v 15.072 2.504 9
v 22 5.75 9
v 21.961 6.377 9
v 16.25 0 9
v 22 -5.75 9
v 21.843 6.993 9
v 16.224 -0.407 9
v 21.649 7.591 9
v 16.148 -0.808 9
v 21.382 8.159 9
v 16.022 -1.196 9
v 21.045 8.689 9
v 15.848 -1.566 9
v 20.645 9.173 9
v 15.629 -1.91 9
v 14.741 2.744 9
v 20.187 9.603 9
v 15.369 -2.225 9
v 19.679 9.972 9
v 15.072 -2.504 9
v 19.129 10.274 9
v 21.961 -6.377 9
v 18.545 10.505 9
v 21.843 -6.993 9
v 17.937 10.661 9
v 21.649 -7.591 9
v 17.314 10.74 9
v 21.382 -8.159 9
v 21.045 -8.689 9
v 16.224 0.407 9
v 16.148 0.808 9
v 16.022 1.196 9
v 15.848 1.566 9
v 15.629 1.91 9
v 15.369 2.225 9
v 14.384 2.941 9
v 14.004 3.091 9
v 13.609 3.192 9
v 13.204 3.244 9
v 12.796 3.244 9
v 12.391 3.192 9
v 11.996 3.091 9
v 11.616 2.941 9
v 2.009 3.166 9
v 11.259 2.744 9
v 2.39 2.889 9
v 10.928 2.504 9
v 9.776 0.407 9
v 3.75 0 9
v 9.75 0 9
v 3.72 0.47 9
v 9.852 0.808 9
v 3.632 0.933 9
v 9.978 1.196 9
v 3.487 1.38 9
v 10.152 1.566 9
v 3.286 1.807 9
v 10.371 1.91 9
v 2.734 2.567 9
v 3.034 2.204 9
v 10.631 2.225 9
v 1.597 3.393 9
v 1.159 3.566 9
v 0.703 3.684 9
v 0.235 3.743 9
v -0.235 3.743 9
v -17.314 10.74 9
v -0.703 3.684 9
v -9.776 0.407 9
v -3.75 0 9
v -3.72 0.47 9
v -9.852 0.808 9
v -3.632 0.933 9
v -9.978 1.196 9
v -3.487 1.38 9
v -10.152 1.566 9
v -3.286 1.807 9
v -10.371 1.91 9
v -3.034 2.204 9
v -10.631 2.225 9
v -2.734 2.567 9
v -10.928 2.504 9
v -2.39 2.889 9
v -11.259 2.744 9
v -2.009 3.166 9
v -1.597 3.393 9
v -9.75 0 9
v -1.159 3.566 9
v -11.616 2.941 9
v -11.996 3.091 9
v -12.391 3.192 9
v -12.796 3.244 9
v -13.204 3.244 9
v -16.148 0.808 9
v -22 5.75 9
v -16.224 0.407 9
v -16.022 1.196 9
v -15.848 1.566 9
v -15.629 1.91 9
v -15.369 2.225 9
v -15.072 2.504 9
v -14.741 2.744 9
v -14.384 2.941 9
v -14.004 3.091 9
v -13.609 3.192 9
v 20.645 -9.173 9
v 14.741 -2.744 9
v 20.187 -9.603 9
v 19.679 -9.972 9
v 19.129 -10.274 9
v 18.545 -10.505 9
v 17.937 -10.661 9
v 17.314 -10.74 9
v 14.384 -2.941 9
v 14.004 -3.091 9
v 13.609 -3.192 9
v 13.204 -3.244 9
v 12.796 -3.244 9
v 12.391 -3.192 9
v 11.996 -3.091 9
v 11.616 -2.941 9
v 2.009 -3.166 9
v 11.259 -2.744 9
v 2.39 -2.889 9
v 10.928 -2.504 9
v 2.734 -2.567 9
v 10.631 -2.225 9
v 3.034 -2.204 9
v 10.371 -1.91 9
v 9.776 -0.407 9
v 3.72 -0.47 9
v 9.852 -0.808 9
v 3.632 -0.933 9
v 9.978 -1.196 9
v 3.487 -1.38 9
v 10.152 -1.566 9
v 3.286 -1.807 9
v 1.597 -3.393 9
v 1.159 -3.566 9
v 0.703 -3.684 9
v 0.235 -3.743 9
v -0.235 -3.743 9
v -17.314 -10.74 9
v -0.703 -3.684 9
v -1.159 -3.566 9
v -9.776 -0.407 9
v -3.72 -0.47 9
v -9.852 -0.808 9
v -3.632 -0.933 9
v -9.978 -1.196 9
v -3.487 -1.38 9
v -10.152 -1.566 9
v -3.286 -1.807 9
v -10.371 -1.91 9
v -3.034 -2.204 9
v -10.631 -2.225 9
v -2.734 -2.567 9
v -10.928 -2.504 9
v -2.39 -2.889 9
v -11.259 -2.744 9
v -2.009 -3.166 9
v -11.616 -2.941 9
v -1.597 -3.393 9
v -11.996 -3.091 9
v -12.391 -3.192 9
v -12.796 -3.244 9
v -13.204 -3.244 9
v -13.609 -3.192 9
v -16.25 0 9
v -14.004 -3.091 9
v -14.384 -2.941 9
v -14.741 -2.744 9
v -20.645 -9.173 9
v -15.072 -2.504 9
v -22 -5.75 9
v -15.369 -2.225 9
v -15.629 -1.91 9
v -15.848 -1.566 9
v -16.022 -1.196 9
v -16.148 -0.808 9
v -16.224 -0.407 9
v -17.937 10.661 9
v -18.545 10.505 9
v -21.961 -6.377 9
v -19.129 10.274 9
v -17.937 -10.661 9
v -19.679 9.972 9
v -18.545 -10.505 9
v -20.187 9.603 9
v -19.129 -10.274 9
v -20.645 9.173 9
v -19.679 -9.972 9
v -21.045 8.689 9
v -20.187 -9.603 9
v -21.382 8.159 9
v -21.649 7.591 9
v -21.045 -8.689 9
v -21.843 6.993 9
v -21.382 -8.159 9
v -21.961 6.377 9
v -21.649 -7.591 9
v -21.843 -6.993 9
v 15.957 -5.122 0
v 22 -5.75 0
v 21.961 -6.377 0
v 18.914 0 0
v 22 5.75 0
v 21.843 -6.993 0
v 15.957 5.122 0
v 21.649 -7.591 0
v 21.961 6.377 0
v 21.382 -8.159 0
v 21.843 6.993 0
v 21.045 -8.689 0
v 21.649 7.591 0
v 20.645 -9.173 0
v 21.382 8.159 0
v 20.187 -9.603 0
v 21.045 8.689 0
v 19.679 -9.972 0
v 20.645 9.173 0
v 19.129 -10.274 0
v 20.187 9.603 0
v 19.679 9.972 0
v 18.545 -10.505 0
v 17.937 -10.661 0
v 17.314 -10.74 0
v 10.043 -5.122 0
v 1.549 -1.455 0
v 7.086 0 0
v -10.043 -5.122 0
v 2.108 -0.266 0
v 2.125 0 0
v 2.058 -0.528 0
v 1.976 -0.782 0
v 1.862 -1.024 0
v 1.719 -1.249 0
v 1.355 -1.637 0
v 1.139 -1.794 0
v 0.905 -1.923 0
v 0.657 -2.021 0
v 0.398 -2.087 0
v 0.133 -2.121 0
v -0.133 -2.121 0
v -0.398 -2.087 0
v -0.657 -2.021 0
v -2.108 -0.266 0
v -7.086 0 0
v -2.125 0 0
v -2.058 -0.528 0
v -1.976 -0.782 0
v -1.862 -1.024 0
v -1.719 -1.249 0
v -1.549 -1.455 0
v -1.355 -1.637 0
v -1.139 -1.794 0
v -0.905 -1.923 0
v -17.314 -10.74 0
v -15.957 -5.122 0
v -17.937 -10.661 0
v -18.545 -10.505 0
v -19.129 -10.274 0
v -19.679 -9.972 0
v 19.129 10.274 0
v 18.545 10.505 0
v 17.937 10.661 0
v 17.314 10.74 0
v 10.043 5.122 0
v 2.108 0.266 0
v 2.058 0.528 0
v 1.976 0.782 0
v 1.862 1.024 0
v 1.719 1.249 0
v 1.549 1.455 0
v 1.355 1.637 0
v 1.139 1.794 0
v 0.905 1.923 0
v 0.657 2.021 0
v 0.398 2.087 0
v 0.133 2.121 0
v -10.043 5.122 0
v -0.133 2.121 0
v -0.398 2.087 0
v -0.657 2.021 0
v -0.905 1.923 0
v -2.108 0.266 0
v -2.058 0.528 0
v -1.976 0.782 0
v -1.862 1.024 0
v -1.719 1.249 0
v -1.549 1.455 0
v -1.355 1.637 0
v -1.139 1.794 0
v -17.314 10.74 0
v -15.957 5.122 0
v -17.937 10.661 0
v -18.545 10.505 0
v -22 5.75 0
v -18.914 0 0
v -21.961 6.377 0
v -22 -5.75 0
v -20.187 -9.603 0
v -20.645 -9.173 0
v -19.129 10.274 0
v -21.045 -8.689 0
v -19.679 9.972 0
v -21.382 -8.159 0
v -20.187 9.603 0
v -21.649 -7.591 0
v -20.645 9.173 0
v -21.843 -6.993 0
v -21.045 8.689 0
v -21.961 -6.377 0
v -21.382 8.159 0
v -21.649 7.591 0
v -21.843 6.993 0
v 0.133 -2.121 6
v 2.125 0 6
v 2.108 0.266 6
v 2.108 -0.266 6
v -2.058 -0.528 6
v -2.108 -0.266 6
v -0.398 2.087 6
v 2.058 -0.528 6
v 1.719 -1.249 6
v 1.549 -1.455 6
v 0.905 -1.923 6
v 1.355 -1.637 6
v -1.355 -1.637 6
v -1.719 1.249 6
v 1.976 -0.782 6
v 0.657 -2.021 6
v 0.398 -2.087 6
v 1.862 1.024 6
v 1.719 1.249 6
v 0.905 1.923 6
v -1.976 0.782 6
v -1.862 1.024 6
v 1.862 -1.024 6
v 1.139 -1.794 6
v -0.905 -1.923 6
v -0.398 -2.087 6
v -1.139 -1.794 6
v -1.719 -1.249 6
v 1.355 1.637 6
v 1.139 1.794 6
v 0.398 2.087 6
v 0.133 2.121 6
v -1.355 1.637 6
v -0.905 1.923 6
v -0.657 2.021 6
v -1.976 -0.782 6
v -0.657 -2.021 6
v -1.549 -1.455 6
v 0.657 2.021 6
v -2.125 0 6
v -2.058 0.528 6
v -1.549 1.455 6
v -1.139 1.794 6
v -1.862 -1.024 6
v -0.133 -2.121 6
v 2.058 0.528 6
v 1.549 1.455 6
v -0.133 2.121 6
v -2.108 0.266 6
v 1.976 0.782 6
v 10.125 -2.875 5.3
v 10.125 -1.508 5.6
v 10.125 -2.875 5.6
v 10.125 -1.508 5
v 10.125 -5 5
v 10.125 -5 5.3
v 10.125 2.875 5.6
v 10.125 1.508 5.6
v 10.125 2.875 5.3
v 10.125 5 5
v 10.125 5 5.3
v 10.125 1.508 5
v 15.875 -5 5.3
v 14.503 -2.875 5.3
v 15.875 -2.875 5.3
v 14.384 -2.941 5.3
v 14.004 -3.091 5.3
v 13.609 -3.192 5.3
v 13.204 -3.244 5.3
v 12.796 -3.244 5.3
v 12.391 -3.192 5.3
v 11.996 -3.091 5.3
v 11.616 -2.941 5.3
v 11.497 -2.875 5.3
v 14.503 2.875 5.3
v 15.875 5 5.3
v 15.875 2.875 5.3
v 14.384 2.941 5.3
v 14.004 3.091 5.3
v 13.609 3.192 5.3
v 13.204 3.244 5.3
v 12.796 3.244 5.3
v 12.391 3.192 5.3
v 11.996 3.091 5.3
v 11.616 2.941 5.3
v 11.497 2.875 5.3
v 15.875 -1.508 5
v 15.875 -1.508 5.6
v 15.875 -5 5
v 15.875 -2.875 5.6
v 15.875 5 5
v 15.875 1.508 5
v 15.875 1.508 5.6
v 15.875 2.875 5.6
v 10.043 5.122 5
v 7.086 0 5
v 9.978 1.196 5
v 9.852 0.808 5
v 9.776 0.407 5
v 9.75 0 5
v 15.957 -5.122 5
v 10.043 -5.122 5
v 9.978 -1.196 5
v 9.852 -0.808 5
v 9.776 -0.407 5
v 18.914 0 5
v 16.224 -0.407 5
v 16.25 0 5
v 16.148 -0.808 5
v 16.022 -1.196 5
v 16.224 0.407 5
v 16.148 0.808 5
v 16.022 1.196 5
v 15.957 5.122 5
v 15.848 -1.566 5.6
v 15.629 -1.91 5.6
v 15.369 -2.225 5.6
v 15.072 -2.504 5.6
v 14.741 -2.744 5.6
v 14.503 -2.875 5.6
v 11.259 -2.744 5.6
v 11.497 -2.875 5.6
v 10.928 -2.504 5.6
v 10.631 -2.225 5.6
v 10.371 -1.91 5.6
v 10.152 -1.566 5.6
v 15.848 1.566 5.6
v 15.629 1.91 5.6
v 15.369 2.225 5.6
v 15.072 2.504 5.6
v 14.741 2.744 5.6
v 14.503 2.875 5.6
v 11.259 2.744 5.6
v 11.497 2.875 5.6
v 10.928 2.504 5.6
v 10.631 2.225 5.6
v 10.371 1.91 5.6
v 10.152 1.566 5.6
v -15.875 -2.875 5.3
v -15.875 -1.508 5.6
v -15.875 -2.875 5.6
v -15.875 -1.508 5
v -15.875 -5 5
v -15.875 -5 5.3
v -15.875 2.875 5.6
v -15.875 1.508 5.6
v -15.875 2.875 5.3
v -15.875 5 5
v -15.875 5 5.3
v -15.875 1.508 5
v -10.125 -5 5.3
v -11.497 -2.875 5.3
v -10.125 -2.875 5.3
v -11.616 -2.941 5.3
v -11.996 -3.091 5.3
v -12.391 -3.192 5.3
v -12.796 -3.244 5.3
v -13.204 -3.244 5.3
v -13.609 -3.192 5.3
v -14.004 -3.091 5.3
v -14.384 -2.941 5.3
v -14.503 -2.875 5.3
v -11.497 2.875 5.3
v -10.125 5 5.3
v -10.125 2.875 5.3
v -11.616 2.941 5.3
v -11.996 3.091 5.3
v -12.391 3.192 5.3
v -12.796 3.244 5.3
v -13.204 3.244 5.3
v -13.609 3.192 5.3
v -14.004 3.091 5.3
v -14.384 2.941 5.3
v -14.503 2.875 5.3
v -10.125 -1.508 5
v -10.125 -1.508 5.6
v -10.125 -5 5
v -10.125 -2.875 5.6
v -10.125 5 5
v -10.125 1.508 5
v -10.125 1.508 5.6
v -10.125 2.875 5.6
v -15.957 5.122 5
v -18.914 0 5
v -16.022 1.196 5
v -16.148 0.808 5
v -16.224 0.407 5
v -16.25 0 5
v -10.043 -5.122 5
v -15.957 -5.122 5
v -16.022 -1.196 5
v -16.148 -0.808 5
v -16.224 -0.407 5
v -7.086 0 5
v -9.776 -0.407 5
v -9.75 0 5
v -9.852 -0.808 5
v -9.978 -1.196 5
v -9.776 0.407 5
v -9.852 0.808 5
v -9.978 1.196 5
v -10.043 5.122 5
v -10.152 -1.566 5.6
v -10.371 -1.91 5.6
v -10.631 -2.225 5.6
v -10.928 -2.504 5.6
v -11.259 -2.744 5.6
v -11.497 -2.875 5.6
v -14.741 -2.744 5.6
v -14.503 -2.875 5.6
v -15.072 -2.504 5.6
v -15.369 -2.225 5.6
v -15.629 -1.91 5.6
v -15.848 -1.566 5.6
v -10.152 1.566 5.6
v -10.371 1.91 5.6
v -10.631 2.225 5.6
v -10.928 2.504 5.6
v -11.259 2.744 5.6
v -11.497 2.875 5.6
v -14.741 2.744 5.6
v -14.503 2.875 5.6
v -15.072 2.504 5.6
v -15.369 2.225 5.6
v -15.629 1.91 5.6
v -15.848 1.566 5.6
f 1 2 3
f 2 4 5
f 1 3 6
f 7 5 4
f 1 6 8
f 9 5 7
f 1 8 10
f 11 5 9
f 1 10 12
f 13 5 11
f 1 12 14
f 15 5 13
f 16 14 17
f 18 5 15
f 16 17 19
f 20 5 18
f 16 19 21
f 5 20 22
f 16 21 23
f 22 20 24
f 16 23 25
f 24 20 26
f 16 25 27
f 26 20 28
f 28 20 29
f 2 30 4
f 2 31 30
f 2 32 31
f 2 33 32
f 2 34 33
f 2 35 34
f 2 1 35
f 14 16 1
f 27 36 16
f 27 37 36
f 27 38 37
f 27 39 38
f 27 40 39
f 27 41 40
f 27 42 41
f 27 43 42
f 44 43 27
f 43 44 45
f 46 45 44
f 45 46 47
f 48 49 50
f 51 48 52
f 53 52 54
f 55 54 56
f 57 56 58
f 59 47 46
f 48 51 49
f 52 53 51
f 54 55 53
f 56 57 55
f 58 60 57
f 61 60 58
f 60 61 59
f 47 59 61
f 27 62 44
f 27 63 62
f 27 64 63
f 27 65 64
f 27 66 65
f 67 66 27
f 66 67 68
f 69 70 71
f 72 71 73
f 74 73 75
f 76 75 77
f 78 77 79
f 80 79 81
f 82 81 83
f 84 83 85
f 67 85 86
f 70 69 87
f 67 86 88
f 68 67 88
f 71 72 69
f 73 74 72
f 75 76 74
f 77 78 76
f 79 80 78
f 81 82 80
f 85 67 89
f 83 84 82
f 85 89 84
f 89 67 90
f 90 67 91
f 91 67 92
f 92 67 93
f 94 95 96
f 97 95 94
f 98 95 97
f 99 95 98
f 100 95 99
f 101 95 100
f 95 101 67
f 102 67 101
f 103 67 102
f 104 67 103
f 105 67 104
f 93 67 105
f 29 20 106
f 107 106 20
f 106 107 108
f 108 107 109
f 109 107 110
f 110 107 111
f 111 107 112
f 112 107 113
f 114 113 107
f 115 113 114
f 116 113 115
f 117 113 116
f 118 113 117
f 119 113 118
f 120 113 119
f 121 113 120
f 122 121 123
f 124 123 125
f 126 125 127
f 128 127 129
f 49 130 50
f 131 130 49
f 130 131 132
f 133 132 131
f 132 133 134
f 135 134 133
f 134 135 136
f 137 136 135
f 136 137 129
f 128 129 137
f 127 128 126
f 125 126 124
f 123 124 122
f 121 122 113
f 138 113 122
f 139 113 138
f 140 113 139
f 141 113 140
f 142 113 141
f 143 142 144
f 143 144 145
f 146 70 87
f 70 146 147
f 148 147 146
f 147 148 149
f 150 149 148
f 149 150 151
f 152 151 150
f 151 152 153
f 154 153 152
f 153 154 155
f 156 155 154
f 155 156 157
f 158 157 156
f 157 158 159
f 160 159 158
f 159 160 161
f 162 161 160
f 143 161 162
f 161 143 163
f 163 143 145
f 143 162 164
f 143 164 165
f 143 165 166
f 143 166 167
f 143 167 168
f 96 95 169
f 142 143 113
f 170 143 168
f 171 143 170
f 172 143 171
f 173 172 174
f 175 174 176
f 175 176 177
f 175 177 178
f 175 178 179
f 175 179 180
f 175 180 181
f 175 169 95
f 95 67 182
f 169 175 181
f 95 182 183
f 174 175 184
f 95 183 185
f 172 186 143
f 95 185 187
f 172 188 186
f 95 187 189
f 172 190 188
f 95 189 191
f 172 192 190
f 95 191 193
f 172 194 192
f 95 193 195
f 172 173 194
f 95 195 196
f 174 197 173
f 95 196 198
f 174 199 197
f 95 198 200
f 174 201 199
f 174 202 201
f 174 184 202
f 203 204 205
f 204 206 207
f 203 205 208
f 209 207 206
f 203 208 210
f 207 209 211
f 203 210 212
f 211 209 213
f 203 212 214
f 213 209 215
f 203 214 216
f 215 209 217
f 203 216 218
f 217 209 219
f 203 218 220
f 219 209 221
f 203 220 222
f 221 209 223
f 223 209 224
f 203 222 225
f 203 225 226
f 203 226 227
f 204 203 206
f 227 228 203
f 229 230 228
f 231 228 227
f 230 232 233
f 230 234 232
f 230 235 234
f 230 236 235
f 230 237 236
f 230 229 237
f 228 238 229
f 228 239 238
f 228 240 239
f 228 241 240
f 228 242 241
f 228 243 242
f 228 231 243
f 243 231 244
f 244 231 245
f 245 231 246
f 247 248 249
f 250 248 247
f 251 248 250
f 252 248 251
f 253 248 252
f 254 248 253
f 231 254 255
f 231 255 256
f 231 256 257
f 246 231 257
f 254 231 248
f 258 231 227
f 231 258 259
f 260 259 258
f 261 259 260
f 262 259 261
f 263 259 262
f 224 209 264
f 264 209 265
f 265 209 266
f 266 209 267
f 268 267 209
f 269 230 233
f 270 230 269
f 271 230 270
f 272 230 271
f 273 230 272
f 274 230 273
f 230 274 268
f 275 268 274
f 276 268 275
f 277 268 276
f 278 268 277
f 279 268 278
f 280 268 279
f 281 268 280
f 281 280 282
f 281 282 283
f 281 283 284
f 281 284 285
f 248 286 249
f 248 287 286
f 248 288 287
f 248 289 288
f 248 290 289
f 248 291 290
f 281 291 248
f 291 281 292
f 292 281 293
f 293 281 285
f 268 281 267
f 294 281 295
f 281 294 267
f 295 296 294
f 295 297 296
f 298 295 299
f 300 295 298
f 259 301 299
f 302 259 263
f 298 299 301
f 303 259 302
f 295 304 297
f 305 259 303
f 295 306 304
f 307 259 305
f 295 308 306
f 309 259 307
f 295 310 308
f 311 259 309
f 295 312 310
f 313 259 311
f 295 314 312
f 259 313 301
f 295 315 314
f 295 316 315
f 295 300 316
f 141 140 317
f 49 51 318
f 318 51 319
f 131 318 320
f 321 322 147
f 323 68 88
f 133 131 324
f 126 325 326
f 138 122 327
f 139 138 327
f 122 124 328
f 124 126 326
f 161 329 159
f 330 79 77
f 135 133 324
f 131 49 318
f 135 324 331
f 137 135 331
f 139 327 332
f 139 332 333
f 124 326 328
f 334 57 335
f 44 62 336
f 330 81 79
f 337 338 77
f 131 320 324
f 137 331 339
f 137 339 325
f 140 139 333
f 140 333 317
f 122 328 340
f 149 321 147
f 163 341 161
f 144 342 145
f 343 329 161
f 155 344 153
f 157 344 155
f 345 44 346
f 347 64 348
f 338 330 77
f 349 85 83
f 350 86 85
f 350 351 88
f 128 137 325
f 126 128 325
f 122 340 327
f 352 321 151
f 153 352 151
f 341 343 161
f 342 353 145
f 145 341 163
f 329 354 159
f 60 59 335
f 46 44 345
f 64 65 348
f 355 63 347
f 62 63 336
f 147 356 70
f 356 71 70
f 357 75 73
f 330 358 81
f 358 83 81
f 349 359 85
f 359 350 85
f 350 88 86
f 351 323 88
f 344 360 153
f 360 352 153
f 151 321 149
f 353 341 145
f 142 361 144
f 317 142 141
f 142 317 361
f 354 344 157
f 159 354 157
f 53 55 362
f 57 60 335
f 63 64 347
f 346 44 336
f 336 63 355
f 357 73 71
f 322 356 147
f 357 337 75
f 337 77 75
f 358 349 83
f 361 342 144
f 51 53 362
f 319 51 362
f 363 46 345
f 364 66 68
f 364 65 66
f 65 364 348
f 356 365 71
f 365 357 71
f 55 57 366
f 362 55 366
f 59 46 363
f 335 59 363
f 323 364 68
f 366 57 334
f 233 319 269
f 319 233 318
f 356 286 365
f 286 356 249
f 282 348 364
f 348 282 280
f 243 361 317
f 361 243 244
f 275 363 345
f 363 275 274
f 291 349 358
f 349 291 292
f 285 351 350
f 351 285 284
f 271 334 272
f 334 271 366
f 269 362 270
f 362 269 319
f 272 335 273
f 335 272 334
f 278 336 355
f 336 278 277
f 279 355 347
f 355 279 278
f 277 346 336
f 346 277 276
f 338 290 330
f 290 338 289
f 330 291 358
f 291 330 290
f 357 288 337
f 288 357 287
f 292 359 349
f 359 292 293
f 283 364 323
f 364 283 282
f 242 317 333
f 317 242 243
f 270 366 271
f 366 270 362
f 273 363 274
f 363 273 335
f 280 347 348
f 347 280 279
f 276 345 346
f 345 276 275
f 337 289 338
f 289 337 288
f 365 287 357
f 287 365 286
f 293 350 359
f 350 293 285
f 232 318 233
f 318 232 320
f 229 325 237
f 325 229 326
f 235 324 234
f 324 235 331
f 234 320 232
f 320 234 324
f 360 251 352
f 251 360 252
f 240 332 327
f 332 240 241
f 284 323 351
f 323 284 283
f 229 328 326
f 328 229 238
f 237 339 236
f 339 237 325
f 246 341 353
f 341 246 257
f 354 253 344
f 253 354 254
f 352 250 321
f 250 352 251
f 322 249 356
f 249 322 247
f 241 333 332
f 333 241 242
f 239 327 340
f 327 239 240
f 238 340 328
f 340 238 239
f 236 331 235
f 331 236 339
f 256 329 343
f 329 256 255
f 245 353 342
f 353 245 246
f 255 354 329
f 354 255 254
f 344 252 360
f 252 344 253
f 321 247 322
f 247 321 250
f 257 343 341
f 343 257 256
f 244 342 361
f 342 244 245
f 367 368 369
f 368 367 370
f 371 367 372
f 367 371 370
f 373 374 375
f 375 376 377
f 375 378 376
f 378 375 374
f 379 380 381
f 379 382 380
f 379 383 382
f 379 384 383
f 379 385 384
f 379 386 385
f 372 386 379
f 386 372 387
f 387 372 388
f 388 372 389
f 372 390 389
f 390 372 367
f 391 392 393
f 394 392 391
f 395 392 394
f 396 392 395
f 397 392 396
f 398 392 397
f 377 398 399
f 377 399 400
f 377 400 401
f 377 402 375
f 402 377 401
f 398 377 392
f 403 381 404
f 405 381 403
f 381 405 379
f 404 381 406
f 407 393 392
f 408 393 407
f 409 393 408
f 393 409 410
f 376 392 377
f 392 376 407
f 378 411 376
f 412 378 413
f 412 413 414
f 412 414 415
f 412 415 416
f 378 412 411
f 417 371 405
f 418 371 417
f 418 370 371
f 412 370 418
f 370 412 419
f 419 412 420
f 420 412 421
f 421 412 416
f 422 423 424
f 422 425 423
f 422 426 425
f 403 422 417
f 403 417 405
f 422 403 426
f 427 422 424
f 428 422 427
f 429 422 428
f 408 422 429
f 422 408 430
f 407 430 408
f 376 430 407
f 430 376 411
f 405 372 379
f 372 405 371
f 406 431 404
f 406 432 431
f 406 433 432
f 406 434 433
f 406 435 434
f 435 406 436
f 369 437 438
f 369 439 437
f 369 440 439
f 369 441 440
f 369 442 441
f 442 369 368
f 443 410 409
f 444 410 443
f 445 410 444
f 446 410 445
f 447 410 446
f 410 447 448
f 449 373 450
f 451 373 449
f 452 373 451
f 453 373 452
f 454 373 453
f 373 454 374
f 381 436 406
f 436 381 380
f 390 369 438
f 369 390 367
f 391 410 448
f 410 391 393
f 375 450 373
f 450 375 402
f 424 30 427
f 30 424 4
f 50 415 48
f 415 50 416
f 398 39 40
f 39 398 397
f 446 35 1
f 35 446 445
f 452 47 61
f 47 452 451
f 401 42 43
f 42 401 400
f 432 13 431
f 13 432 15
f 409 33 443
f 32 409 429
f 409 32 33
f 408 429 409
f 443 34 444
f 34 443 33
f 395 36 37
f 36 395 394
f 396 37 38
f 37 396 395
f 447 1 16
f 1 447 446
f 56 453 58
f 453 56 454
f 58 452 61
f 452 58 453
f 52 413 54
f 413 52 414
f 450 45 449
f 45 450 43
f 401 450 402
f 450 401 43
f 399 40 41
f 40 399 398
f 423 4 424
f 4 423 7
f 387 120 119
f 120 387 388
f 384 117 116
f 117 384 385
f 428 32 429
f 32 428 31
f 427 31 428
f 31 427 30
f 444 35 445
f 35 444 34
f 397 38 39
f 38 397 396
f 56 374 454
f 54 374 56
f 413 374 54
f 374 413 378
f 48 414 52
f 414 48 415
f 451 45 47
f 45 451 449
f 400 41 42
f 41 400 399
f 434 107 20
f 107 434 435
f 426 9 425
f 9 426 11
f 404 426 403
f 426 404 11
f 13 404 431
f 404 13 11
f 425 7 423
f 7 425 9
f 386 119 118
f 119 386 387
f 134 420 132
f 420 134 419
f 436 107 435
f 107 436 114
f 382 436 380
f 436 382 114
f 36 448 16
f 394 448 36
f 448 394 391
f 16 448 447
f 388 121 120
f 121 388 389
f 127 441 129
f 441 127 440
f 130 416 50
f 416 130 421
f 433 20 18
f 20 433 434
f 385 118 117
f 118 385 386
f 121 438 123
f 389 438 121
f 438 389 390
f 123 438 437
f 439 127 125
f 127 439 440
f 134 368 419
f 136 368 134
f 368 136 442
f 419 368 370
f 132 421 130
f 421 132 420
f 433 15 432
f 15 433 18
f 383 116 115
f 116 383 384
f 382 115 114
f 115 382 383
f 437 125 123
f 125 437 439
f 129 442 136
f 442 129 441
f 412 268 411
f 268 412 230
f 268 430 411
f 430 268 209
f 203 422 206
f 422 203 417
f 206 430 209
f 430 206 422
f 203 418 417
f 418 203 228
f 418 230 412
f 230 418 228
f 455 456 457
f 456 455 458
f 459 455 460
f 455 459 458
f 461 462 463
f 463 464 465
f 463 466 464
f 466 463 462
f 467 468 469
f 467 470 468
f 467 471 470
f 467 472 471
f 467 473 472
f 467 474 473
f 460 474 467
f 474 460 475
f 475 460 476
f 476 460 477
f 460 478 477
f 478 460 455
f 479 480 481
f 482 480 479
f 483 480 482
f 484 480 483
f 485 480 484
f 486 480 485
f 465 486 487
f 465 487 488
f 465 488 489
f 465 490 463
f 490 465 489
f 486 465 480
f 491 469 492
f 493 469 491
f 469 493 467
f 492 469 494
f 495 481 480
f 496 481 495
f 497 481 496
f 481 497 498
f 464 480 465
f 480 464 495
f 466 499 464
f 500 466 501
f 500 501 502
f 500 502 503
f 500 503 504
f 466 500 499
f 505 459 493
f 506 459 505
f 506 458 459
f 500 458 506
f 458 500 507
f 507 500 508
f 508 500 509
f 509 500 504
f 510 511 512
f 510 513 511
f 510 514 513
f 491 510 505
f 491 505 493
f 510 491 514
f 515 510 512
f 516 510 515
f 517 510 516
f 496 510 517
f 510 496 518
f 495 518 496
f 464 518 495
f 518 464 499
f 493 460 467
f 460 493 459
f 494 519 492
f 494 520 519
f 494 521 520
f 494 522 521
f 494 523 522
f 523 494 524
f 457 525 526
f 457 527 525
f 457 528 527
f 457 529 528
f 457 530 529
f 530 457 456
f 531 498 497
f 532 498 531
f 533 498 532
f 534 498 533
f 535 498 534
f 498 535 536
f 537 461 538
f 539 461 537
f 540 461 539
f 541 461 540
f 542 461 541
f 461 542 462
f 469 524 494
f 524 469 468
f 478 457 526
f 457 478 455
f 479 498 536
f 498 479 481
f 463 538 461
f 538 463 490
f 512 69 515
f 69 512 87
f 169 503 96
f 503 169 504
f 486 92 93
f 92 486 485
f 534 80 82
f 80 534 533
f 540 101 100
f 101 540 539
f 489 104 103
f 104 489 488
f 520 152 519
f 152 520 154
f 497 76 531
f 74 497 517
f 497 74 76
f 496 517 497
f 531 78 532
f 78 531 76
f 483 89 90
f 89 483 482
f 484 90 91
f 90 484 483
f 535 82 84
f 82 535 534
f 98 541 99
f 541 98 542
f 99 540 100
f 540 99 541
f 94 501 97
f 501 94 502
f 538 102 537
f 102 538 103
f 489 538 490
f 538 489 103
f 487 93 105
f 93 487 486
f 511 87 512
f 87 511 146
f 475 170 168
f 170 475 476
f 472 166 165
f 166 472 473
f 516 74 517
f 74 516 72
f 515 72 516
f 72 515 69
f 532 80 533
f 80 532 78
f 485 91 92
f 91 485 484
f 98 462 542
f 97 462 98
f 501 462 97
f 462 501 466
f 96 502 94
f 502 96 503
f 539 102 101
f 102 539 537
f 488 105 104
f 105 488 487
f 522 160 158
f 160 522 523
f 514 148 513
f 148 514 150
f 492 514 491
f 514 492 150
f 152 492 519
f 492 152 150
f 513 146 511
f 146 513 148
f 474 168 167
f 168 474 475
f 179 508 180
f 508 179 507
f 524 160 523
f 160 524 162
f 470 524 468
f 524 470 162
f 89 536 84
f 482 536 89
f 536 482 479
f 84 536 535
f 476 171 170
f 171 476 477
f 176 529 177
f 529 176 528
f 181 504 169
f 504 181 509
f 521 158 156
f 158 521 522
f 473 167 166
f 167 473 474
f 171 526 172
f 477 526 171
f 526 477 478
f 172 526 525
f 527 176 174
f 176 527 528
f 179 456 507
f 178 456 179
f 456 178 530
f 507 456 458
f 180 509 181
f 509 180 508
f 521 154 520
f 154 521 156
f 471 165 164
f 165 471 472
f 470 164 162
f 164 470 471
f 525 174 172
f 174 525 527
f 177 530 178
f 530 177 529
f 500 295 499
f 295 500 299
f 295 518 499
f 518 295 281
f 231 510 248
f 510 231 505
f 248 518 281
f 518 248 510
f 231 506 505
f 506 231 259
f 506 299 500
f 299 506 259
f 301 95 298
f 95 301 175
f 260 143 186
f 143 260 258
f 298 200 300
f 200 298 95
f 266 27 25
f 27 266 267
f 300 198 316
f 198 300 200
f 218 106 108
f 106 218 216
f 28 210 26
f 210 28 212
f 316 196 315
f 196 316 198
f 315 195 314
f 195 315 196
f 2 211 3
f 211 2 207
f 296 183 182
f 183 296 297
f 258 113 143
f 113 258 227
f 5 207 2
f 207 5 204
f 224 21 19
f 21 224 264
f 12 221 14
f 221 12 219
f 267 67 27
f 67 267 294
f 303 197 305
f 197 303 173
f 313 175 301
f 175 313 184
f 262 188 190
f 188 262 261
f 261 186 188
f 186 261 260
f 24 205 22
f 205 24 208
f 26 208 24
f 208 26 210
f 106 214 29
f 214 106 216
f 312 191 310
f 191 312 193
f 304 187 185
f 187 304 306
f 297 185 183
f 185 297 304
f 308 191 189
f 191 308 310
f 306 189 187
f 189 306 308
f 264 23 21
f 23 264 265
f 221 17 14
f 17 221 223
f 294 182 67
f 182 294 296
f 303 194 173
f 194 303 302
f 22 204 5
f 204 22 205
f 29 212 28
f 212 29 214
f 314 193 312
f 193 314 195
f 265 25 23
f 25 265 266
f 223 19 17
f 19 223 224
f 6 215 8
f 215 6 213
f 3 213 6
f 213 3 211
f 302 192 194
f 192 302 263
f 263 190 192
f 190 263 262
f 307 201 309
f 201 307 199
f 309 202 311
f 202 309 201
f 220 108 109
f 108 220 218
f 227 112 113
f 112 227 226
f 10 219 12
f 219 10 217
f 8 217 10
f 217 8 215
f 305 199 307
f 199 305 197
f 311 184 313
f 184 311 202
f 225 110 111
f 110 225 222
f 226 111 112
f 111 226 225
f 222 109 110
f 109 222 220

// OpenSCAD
$fn = 50;


difference() {
	union() {
		hull() {
			translate(v = [-17.0000000000, 5.7500000000, 0]) {
				cylinder(h = 9, r = 5);
			}
			translate(v = [17.0000000000, 5.7500000000, 0]) {
				cylinder(h = 9, r = 5);
			}
			translate(v = [-17.0000000000, -5.7500000000, 0]) {
				cylinder(h = 9, r = 5);
			}
			translate(v = [17.0000000000, -5.7500000000, 0]) {
				cylinder(h = 9, r = 5);
			}
		}
	}
	union() {
		translate(v = [0, 0, 9]) {
			rotate(a = [0, 0, 0]) {
				difference() {
					union() {
						#translate(v = [0, 0, -9.0000000000]) {
							cylinder(h = 9, r = 2.0000000000);
						}
						#translate(v = [0, 0, -3]) {
							cylinder(h = 3, r1 = 2.1250000000, r2 = 3.7500000000);
						}
						#translate(v = [0, 0, -9.0000000000]) {
							cylinder(h = 9, r = 2.1250000000);
						}
						#translate(v = [0, 0, -9.0000000000]) {
							cylinder(h = 9, r = 2.0000000000);
						}
					}
					union();
				}
			}
		}
		translate(v = [13.0000000000, 0, 0]) {
			rotate(a = [0, 0, 0]) {
				difference() {
					union() {
						#translate(v = [-2.8750000000, -5.0000000000, -0.3000000000]) {
							cube(size = [5.7500000000, 10, 0.3000000000]);
						}
						#translate(v = [-2.8750000000, -2.8750000000, -0.6000000000]) {
							cube(size = [5.7500000000, 5.7500000000, 0.3000000000]);
						}
						#translate(v = [-2.8750000000, -5.0000000000, 5]) {
							cube(size = [5.7500000000, 10, 0.3000000000]);
						}
						#translate(v = [-2.8750000000, -2.8750000000, 5.3000000000]) {
							cube(size = [5.7500000000, 5.7500000000, 0.3000000000]);
						}
						#translate(v = [0, 0, -100.0000000000]) {
							cylinder(h = 200, r = 3.2500000000);
						}
						#linear_extrude(height = 5) {
							polygon(points = [[5.9142500000, 0.0000000000], [2.9571250000, 5.1218907443], [-2.9571250000, 5.1218907443], [-5.9142500000, 0.0000000000], [-2.9571250000, -5.1218907443], [2.9571250000, -5.1218907443]]);
						}
						#translate(v = [-2.8750000000, -5.0000000000, -0.3000000000]) {
							cube(size = [5.7500000000, 10, 0.3000000000]);
						}
						#translate(v = [-2.8750000000, -2.8750000000, -0.6000000000]) {
							cube(size = [5.7500000000, 5.7500000000, 0.3000000000]);
						}
						#translate(v = [-2.8750000000, -5.0000000000, 5]) {
							cube(size = [5.7500000000, 10, 0.3000000000]);
						}
						#translate(v = [-2.8750000000, -2.8750000000, 5.3000000000]) {
							cube(size = [5.7500000000, 5.7500000000, 0.3000000000]);
						}
						#translate(v = [0, 0, -100.0000000000]) {
							cylinder(h = 200, r = 3.2500000000);
						}
						#translate(v = [-2.8750000000, -5.0000000000, -0.3000000000]) {
							cube(size = [5.7500000000, 10, 0.3000000000]);
						}
						#translate(v = [-2.8750000000, -2.8750000000, -0.6000000000]) {
							cube(size = [5.7500000000, 5.7500000000, 0.3000000000]);
						}
						#translate(v = [-2.8750000000, -5.0000000000, 5]) {
							cube(size = [5.7500000000, 10, 0.3000000000]);
						}
						#translate(v = [-2.8750000000, -2.8750000000, 5.3000000000]) {
							cube(size = [5.7500000000, 5.7500000000, 0.3000000000]);
						}
						#translate(v = [0, 0, -100.0000000000]) {
							cylinder(h = 200, r = 3.2500000000);
						}
					}
					union();
				}
			}
		}
		translate(v = [-13.0000000000, 0, 0]) {
			rotate(a = [0, 0, 0]) {
				difference() {
					union() {
						#translate(v = [-2.8750000000, -5.0000000000, -0.3000000000]) {
							cube(size = [5.7500000000, 10, 0.3000000000]);
						}
						#translate(v = [-2.8750000000, -2.8750000000, -0.6000000000]) {
							cube(size = [5.7500000000, 5.7500000000, 0.3000000000]);
						}
						#translate(v = [-2.8750000000, -5.0000000000, 5]) {
							cube(size = [5.7500000000, 10, 0.3000000000]);
						}
						#translate(v = [-2.8750000000, -2.8750000000, 5.3000000000]) {
							cube(size = [5.7500000000, 5.7500000000, 0.3000000000]);
						}
						#translate(v = [0, 0, -100.0000000000]) {
							cylinder(h = 200, r = 3.2500000000);
						}
						#linear_extrude(height = 5) {
							polygon(points = [[5.9142500000, 0.0000000000], [2.9571250000, 5.1218907443], [-2.9571250000, 5.1218907443], [-5.9142500000, 0.0000000000], [-2.9571250000, -5.1218907443], [2.9571250000, -5.1218907443]]);
						}
						#translate(v = [-2.8750000000, -5.0000000000, -0.3000000000]) {
							cube(size = [5.7500000000, 10, 0.3000000000]);
						}
						#translate(v = [-2.8750000000, -2.8750000000, -0.6000000000]) {
							cube(size = [5.7500000000, 5.7500000000, 0.3000000000]);
						}
						#translate(v = [-2.8750000000, -5.0000000000, 5]) {
							cube(size = [5.7500000000, 10, 0.3000000000]);
						}
						#translate(v = [-2.8750000000, -2.8750000000, 5.3000000000]) {
							cube(size = [5.7500000000, 5.7500000000, 0.3000000000]);
						}
						#translate(v = [0, 0, -100.0000000000]) {
							cylinder(h = 200, r = 3.2500000000);
						}
						#translate(v = [-2.8750000000, -5.0000000000, -0.3000000000]) {
							cube(size = [5.7500000000, 10, 0.3000000000]);
						}
						#translate(v = [-2.8750000000, -2.8750000000, -0.6000000000]) {
							cube(size = [5.7500000000, 5.7500000000, 0.3000000000]);
						}
						#translate(v = [-2.8750000000, -5.0000000000, 5]) {
							cube(size = [5.7500000000, 10, 0.3000000000]);
						}
						#translate(v = [-2.8750000000, -2.8750000000, 5.3000000000]) {
							cube(size = [5.7500000000, 5.7500000000, 0.3000000000]);
						}
						#translate(v = [0, 0, -100.0000000000]) {
							cylinder(h = 200, r = 3.2500000000);
						}
					}
					union();
				}
			}
		}
	}
}
